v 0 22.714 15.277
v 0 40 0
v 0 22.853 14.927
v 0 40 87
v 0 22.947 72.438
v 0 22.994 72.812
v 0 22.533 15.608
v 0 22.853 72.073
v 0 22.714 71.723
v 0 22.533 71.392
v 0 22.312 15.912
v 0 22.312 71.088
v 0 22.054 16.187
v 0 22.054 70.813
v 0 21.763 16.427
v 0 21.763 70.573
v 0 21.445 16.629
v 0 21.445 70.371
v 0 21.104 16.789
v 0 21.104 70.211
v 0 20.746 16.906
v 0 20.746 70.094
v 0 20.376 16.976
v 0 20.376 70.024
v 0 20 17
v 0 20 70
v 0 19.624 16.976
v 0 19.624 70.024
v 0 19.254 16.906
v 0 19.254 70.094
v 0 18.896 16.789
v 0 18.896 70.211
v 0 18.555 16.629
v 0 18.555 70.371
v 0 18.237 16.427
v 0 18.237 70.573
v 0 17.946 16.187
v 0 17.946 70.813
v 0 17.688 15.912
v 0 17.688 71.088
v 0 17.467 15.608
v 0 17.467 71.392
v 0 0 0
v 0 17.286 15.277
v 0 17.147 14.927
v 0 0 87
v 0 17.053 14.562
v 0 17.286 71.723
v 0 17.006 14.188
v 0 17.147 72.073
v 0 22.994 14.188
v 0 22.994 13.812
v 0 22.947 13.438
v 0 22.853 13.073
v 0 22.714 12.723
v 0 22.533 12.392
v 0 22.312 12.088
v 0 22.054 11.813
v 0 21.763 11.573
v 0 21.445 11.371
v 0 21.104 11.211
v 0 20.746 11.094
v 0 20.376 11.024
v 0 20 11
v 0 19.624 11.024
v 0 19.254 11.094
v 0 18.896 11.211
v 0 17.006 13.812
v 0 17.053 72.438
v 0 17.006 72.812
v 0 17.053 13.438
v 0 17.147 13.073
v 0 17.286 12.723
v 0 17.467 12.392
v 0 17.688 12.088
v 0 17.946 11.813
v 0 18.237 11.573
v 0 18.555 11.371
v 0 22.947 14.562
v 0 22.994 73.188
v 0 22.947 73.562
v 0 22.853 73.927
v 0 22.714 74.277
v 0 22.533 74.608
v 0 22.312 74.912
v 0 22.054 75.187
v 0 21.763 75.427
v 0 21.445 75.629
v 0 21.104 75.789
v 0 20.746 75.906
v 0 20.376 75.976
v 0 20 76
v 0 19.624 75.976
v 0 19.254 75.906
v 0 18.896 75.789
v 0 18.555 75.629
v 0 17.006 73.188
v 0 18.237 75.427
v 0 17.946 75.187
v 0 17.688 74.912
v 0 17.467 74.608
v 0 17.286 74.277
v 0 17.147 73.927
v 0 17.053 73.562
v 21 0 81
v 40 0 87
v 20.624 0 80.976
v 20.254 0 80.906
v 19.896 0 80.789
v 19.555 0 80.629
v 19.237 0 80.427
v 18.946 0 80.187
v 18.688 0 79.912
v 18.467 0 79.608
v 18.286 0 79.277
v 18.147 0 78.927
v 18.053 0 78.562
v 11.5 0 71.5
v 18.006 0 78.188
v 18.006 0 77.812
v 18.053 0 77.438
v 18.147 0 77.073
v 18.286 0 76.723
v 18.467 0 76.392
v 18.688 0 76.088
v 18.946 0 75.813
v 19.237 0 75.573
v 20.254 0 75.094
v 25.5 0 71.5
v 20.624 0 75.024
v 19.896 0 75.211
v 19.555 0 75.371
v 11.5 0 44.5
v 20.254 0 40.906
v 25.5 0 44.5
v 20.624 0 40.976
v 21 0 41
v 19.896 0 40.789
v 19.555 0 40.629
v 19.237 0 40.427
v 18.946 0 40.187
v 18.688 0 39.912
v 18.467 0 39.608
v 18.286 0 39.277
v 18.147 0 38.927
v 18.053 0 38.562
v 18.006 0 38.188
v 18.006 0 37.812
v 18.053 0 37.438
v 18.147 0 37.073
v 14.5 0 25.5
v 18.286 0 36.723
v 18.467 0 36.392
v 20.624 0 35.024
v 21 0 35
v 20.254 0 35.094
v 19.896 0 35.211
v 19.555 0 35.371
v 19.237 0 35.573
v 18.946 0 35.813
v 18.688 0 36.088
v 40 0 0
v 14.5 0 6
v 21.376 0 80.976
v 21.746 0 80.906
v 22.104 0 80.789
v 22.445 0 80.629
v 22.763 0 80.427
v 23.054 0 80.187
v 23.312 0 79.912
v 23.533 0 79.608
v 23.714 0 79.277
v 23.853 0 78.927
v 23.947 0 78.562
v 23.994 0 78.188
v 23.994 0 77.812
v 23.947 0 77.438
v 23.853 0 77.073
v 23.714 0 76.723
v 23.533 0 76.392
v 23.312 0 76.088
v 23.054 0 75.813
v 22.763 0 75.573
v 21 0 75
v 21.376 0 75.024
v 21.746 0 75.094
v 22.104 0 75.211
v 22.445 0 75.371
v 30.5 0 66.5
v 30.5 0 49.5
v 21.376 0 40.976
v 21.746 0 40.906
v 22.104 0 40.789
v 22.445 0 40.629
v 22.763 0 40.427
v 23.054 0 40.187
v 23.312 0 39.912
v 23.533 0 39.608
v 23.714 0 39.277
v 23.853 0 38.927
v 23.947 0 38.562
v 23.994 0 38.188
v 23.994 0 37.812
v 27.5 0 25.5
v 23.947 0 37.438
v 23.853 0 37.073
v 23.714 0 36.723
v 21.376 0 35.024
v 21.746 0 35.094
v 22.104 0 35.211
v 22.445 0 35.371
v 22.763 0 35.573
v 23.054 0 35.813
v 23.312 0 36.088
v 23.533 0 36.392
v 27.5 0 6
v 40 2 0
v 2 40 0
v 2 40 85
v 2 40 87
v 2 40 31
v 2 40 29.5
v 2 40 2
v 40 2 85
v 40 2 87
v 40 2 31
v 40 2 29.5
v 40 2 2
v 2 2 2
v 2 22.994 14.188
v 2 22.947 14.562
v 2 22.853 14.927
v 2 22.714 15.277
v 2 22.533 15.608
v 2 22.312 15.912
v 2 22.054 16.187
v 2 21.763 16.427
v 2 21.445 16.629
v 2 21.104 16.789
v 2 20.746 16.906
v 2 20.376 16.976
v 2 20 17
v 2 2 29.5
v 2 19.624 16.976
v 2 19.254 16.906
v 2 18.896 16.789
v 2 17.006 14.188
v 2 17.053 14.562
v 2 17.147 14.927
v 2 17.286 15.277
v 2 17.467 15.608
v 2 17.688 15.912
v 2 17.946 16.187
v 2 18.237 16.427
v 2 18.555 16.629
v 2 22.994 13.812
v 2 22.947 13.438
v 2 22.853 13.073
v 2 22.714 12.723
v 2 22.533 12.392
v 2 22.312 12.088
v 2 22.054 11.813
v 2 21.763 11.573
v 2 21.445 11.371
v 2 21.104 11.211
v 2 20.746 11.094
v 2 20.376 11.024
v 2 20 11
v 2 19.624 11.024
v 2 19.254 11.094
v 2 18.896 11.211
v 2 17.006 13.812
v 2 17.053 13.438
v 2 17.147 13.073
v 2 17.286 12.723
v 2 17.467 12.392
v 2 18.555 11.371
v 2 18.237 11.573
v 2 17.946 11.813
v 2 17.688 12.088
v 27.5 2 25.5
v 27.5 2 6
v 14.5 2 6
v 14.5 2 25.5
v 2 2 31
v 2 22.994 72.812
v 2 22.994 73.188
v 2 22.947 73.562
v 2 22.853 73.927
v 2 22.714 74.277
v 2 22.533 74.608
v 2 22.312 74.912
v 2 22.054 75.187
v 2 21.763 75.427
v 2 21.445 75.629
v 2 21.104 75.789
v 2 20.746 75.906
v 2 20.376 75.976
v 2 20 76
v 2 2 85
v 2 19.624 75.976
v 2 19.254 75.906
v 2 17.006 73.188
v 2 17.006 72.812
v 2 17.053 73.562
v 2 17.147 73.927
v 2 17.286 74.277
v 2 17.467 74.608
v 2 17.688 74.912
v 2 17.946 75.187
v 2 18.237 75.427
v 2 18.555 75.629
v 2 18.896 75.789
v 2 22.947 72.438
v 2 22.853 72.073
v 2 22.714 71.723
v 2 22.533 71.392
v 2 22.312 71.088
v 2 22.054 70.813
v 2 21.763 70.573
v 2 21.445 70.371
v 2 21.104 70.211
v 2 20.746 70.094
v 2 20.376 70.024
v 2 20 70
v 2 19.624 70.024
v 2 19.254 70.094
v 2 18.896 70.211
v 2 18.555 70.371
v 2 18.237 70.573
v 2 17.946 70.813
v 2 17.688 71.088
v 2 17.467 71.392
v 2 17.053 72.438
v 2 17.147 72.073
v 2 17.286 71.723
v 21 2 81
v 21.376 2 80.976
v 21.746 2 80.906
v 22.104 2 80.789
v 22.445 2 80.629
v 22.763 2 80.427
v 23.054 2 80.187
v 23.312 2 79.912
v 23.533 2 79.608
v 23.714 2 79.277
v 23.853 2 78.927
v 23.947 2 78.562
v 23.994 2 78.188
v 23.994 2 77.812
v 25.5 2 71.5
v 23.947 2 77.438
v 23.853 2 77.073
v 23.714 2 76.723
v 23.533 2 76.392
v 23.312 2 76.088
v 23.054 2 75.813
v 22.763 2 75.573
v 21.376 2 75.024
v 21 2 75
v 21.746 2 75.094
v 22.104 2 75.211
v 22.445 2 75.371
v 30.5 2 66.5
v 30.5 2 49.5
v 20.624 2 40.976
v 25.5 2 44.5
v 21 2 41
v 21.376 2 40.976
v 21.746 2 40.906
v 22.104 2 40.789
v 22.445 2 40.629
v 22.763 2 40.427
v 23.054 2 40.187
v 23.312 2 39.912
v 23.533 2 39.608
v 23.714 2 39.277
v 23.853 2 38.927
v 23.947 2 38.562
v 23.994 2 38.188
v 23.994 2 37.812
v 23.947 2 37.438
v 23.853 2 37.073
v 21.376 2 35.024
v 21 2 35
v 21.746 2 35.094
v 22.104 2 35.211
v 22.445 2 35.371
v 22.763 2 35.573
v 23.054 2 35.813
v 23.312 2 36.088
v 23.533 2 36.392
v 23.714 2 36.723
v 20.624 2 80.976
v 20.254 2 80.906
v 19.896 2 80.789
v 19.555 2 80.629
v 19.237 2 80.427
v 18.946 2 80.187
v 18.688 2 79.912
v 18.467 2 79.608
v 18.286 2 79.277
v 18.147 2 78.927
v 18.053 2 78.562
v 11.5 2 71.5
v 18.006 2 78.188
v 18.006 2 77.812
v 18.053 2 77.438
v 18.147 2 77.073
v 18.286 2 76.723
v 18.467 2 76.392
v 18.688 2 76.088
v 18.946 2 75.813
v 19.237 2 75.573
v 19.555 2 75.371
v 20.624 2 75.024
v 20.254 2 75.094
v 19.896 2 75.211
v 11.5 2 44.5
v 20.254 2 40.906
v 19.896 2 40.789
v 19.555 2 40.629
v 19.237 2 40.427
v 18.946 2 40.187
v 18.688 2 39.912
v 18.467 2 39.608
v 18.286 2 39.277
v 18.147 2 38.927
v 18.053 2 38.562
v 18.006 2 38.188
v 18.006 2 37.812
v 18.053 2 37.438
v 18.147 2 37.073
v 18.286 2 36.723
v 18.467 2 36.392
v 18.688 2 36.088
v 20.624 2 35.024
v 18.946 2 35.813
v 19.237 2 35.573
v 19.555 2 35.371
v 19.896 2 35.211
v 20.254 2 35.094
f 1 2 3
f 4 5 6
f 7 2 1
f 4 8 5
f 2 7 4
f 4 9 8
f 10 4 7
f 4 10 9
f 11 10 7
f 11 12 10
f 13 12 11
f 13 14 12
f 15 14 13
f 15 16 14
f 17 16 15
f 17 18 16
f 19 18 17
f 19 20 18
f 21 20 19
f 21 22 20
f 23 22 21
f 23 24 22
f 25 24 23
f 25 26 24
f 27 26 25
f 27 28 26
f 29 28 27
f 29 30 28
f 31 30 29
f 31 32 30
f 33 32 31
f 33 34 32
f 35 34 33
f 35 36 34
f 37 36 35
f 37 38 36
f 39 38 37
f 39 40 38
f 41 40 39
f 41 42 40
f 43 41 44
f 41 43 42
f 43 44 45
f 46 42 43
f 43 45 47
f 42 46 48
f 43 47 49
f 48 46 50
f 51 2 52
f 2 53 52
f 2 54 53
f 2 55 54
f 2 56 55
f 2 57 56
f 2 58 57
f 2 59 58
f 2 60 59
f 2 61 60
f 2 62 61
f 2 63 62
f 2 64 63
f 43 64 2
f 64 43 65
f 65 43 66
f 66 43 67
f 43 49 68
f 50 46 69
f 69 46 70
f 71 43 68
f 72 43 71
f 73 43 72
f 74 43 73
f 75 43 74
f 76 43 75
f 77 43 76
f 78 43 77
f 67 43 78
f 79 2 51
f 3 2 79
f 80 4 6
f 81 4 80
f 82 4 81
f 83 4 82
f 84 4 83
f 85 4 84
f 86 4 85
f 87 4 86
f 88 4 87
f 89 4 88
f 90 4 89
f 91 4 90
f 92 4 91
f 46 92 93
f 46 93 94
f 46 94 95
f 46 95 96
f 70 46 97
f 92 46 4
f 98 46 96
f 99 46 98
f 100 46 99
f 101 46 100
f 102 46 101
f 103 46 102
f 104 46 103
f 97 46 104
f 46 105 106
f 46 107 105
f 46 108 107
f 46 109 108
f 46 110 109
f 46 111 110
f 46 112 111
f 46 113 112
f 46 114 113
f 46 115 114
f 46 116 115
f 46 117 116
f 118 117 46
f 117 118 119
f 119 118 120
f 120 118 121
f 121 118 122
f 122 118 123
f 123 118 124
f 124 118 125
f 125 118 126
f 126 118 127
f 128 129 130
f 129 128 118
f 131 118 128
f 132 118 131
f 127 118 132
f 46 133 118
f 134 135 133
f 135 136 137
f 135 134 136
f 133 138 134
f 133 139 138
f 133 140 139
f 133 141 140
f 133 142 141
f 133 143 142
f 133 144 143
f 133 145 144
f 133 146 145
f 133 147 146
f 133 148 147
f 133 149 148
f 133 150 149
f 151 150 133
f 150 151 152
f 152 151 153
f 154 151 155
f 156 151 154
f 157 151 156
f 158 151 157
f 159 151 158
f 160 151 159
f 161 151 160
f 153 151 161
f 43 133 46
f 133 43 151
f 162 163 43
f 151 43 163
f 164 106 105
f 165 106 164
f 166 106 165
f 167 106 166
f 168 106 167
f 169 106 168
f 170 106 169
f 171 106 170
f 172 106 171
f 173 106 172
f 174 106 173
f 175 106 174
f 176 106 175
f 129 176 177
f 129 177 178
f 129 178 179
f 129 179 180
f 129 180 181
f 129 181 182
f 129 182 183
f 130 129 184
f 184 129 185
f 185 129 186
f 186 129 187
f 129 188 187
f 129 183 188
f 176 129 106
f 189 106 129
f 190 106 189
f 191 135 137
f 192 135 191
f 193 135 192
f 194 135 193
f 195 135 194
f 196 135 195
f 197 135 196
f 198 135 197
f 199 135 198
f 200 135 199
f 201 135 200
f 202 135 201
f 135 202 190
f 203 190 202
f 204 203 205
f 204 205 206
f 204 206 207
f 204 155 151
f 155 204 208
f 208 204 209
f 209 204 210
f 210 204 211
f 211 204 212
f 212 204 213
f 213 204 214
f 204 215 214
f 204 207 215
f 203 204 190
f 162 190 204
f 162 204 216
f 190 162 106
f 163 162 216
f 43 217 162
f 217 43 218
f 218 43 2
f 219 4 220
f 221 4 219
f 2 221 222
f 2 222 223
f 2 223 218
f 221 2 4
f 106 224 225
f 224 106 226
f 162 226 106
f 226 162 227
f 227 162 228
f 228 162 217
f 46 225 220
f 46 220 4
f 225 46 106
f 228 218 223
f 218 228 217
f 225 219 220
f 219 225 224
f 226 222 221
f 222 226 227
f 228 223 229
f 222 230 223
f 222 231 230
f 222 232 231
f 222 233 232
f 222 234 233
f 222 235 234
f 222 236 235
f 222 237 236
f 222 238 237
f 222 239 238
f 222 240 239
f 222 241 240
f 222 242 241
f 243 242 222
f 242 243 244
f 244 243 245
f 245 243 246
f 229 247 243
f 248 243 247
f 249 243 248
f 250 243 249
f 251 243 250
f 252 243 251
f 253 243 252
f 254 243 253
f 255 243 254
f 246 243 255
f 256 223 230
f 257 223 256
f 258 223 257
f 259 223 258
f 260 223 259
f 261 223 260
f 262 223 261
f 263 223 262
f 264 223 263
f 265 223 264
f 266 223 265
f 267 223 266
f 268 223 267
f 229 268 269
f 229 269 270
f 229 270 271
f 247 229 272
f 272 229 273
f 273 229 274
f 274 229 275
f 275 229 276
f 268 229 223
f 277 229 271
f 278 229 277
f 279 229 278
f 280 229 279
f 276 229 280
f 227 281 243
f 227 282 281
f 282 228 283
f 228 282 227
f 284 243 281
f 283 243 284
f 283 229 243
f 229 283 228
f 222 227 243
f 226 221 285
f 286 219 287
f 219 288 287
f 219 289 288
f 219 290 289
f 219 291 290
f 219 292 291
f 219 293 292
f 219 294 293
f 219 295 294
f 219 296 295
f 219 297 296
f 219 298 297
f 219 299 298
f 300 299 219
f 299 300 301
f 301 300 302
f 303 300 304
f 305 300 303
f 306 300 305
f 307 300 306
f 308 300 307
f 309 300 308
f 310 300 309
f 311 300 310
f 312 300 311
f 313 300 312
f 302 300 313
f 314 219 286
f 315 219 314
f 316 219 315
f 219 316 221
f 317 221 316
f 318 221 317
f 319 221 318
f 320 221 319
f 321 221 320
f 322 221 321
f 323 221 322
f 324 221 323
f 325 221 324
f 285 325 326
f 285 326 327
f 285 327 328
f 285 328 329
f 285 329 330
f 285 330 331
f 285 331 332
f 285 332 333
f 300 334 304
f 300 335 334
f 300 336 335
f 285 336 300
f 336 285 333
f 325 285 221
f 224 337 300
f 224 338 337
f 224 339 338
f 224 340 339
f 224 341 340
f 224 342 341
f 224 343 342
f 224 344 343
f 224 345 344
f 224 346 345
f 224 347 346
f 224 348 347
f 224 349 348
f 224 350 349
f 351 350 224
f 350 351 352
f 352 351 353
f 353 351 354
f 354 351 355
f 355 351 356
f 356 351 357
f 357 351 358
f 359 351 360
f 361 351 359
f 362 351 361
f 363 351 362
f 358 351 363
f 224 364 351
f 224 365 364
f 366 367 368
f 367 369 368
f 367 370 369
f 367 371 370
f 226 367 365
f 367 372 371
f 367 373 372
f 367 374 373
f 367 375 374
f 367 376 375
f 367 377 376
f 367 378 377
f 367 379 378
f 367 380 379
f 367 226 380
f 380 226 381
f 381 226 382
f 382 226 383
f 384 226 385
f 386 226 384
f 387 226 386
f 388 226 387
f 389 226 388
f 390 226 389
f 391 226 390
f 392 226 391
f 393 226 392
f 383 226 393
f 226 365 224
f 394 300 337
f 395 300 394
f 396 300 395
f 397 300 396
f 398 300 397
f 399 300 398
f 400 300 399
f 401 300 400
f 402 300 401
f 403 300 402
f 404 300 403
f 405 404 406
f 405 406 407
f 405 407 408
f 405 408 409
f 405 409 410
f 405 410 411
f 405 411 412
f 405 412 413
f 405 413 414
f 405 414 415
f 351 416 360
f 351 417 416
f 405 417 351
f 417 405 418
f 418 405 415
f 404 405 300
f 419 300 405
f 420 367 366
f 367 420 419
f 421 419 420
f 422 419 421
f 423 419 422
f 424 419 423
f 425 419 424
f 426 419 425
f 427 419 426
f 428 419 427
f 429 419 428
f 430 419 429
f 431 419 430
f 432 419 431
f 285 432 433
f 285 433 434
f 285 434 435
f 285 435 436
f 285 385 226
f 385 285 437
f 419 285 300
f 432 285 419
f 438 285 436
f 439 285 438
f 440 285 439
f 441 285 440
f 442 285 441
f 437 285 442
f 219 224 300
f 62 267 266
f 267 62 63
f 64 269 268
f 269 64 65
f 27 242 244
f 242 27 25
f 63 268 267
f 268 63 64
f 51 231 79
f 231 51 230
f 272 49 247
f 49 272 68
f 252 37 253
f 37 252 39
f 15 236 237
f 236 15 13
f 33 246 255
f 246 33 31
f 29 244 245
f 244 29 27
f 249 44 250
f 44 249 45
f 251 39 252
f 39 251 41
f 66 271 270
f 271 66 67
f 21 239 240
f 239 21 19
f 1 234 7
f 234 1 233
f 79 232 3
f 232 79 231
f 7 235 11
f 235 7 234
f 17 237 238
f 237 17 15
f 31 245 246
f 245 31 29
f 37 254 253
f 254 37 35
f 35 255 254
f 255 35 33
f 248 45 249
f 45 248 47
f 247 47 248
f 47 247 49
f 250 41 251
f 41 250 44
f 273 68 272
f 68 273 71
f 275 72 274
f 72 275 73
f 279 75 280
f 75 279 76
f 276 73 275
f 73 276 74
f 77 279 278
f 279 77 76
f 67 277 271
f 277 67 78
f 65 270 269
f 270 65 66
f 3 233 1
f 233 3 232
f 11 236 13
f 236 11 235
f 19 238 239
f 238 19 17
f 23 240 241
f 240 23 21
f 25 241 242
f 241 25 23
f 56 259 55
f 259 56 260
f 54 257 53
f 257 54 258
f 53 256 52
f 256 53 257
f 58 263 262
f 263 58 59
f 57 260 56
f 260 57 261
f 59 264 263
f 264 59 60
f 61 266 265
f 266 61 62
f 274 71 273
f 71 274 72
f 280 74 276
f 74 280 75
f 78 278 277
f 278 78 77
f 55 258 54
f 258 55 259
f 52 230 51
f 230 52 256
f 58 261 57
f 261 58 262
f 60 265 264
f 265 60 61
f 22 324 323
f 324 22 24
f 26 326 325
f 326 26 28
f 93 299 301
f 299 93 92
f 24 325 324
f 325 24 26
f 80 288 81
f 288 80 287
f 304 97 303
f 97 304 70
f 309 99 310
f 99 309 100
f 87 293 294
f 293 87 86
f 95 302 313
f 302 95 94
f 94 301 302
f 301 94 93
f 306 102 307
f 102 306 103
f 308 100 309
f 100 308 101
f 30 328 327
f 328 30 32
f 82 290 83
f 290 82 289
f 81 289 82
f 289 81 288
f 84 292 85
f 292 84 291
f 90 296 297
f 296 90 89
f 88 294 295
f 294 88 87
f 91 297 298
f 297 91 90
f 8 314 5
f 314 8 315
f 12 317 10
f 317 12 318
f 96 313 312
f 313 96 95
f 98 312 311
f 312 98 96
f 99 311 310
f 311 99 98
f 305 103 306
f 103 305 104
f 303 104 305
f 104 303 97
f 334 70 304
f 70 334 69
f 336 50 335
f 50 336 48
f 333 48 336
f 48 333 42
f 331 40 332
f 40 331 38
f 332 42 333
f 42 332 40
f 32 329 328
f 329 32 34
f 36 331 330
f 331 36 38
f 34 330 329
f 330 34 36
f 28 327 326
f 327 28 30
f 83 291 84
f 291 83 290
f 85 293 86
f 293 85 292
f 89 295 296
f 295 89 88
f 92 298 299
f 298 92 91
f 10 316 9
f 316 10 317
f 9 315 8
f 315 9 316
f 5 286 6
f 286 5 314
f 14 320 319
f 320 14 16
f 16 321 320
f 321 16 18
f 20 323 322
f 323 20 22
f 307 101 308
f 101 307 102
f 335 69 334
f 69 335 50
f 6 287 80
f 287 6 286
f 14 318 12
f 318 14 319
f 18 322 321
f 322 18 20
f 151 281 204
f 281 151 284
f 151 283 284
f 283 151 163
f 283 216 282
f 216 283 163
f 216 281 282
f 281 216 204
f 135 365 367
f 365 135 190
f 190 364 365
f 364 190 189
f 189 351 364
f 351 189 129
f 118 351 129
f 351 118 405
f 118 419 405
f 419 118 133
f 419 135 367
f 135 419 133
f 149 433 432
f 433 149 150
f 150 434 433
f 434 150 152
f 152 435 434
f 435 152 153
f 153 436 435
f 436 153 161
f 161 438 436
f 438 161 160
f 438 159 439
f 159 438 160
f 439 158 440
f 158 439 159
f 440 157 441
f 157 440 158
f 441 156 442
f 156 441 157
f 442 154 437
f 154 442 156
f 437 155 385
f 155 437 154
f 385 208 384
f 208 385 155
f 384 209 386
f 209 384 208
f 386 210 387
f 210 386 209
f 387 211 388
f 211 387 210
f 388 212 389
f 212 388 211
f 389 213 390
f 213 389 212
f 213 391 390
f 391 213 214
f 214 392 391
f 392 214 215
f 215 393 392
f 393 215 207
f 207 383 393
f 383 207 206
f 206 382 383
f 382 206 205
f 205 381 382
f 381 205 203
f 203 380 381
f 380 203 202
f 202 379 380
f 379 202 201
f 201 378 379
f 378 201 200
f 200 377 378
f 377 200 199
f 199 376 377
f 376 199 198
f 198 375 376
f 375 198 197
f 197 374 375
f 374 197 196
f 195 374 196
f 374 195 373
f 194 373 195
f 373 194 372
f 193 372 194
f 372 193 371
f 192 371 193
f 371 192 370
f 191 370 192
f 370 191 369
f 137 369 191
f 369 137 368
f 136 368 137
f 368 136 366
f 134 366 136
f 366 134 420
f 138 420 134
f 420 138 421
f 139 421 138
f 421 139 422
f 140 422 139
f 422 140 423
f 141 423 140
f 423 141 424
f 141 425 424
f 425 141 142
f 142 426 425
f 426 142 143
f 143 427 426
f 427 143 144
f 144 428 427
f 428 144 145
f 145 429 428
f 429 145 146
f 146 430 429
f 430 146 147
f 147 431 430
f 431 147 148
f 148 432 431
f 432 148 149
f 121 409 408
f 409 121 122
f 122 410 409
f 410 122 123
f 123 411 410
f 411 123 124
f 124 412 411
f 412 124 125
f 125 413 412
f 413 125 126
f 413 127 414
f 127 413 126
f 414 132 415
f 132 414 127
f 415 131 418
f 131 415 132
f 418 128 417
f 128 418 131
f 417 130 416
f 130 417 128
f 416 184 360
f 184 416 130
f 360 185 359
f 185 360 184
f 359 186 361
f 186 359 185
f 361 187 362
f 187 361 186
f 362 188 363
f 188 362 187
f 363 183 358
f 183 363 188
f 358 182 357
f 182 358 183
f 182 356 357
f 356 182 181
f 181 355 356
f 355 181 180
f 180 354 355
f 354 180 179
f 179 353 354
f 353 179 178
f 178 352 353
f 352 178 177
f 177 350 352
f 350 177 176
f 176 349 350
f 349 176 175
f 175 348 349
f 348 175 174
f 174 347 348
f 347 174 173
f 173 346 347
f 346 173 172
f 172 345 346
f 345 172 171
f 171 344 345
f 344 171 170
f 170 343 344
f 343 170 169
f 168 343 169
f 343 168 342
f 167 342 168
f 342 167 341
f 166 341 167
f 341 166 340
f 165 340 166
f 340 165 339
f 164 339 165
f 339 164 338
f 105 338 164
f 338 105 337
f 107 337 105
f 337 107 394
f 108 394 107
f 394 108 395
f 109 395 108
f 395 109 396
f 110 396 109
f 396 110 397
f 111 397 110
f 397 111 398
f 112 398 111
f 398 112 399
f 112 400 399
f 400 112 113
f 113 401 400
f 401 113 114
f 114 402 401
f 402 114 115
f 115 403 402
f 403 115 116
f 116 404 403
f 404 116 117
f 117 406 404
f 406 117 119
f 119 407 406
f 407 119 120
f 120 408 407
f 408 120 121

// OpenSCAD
$fn=50;

// global sizes
ep = 2;
l = 87;
p = 40;
h = 40;
br = 4; // border

// switch sizes
sw_l = 19.5;
sw_h = 13;

// power connector sizes
pc_l1 = 17;
pc_l2 = 5;
pc_l = pc_l1 + 2 * pc_l2;
pc_h1 = 14;
pc_h2 = 5;
pc_h = pc_h1 + pc_h2;
pc_dd = 3; // drill diameter
pc_de = 40; // drill entraxe
pc_tl = pc_de + pc_dd; // total larger

module holder() {
    difference() {
        linear_extrude(height=l)
            polygon(points = [[0,0], [0,p], [ep,p], [h,ep], [h,0]]);

        translate([ep, ep, ep])
            linear_extrude(height = sw_l + 2 * br)
                square(size = [p, h], center = false);
        
        translate([ep, ep,  l - pc_tl - 2 * br - ep - pc_dd])
            linear_extrude(height = pc_tl + 2 * br + pc_dd)
                square(size = [p, h], center = false);
    }
}

module switch_hole() {
    translate([(h - sw_h + ep) / 2, p, ep + sw_l + br])
    rotate([90,90,0])
        linear_extrude(height = p * 2)
            square(size = [sw_l, sw_h]);
}

module power_connector_hole() {
    translate([(h - pc_h + ep) / 2, p, l - pc_dd / 2 - br - ep - pc_dd/2])
    rotate([90,90,0])
        linear_extrude(height = p * 2) {
            translate([(pc_de - pc_l)/2, 0, 0]) {
                polygon(points = [[0,0], [pc_l, 0], [pc_l, pc_h1], [pc_l - pc_l2, pc_h], [pc_l2, pc_h], [0, pc_h1]]);
            }
            translate([pc_de, pc_h / 2, 0]) {
                circle(r = 3);
            }
            translate([0, pc_h / 2, 0]) {
                circle(r = 3);
            }
            
        }
}

module fixation_holes() {
    translate([-h/2, p/2, ep + 3 * br])
        rotate([0, 90, 0])
            linear_extrude(height = 2 * h)
                circle(r = 3);
    
    translate([-h/2, p/2, l - ep - 3 * br])
        rotate([0, 90, 0])
            linear_extrude(height = 2 * h)
                circle(r = 3);
}

module full() {
    difference() {
        holder();
        
        switch_hole();
        power_connector_hole();
        fixation_holes();
    }
}

full();
//power_connector_hole();
//fixation_holes();
